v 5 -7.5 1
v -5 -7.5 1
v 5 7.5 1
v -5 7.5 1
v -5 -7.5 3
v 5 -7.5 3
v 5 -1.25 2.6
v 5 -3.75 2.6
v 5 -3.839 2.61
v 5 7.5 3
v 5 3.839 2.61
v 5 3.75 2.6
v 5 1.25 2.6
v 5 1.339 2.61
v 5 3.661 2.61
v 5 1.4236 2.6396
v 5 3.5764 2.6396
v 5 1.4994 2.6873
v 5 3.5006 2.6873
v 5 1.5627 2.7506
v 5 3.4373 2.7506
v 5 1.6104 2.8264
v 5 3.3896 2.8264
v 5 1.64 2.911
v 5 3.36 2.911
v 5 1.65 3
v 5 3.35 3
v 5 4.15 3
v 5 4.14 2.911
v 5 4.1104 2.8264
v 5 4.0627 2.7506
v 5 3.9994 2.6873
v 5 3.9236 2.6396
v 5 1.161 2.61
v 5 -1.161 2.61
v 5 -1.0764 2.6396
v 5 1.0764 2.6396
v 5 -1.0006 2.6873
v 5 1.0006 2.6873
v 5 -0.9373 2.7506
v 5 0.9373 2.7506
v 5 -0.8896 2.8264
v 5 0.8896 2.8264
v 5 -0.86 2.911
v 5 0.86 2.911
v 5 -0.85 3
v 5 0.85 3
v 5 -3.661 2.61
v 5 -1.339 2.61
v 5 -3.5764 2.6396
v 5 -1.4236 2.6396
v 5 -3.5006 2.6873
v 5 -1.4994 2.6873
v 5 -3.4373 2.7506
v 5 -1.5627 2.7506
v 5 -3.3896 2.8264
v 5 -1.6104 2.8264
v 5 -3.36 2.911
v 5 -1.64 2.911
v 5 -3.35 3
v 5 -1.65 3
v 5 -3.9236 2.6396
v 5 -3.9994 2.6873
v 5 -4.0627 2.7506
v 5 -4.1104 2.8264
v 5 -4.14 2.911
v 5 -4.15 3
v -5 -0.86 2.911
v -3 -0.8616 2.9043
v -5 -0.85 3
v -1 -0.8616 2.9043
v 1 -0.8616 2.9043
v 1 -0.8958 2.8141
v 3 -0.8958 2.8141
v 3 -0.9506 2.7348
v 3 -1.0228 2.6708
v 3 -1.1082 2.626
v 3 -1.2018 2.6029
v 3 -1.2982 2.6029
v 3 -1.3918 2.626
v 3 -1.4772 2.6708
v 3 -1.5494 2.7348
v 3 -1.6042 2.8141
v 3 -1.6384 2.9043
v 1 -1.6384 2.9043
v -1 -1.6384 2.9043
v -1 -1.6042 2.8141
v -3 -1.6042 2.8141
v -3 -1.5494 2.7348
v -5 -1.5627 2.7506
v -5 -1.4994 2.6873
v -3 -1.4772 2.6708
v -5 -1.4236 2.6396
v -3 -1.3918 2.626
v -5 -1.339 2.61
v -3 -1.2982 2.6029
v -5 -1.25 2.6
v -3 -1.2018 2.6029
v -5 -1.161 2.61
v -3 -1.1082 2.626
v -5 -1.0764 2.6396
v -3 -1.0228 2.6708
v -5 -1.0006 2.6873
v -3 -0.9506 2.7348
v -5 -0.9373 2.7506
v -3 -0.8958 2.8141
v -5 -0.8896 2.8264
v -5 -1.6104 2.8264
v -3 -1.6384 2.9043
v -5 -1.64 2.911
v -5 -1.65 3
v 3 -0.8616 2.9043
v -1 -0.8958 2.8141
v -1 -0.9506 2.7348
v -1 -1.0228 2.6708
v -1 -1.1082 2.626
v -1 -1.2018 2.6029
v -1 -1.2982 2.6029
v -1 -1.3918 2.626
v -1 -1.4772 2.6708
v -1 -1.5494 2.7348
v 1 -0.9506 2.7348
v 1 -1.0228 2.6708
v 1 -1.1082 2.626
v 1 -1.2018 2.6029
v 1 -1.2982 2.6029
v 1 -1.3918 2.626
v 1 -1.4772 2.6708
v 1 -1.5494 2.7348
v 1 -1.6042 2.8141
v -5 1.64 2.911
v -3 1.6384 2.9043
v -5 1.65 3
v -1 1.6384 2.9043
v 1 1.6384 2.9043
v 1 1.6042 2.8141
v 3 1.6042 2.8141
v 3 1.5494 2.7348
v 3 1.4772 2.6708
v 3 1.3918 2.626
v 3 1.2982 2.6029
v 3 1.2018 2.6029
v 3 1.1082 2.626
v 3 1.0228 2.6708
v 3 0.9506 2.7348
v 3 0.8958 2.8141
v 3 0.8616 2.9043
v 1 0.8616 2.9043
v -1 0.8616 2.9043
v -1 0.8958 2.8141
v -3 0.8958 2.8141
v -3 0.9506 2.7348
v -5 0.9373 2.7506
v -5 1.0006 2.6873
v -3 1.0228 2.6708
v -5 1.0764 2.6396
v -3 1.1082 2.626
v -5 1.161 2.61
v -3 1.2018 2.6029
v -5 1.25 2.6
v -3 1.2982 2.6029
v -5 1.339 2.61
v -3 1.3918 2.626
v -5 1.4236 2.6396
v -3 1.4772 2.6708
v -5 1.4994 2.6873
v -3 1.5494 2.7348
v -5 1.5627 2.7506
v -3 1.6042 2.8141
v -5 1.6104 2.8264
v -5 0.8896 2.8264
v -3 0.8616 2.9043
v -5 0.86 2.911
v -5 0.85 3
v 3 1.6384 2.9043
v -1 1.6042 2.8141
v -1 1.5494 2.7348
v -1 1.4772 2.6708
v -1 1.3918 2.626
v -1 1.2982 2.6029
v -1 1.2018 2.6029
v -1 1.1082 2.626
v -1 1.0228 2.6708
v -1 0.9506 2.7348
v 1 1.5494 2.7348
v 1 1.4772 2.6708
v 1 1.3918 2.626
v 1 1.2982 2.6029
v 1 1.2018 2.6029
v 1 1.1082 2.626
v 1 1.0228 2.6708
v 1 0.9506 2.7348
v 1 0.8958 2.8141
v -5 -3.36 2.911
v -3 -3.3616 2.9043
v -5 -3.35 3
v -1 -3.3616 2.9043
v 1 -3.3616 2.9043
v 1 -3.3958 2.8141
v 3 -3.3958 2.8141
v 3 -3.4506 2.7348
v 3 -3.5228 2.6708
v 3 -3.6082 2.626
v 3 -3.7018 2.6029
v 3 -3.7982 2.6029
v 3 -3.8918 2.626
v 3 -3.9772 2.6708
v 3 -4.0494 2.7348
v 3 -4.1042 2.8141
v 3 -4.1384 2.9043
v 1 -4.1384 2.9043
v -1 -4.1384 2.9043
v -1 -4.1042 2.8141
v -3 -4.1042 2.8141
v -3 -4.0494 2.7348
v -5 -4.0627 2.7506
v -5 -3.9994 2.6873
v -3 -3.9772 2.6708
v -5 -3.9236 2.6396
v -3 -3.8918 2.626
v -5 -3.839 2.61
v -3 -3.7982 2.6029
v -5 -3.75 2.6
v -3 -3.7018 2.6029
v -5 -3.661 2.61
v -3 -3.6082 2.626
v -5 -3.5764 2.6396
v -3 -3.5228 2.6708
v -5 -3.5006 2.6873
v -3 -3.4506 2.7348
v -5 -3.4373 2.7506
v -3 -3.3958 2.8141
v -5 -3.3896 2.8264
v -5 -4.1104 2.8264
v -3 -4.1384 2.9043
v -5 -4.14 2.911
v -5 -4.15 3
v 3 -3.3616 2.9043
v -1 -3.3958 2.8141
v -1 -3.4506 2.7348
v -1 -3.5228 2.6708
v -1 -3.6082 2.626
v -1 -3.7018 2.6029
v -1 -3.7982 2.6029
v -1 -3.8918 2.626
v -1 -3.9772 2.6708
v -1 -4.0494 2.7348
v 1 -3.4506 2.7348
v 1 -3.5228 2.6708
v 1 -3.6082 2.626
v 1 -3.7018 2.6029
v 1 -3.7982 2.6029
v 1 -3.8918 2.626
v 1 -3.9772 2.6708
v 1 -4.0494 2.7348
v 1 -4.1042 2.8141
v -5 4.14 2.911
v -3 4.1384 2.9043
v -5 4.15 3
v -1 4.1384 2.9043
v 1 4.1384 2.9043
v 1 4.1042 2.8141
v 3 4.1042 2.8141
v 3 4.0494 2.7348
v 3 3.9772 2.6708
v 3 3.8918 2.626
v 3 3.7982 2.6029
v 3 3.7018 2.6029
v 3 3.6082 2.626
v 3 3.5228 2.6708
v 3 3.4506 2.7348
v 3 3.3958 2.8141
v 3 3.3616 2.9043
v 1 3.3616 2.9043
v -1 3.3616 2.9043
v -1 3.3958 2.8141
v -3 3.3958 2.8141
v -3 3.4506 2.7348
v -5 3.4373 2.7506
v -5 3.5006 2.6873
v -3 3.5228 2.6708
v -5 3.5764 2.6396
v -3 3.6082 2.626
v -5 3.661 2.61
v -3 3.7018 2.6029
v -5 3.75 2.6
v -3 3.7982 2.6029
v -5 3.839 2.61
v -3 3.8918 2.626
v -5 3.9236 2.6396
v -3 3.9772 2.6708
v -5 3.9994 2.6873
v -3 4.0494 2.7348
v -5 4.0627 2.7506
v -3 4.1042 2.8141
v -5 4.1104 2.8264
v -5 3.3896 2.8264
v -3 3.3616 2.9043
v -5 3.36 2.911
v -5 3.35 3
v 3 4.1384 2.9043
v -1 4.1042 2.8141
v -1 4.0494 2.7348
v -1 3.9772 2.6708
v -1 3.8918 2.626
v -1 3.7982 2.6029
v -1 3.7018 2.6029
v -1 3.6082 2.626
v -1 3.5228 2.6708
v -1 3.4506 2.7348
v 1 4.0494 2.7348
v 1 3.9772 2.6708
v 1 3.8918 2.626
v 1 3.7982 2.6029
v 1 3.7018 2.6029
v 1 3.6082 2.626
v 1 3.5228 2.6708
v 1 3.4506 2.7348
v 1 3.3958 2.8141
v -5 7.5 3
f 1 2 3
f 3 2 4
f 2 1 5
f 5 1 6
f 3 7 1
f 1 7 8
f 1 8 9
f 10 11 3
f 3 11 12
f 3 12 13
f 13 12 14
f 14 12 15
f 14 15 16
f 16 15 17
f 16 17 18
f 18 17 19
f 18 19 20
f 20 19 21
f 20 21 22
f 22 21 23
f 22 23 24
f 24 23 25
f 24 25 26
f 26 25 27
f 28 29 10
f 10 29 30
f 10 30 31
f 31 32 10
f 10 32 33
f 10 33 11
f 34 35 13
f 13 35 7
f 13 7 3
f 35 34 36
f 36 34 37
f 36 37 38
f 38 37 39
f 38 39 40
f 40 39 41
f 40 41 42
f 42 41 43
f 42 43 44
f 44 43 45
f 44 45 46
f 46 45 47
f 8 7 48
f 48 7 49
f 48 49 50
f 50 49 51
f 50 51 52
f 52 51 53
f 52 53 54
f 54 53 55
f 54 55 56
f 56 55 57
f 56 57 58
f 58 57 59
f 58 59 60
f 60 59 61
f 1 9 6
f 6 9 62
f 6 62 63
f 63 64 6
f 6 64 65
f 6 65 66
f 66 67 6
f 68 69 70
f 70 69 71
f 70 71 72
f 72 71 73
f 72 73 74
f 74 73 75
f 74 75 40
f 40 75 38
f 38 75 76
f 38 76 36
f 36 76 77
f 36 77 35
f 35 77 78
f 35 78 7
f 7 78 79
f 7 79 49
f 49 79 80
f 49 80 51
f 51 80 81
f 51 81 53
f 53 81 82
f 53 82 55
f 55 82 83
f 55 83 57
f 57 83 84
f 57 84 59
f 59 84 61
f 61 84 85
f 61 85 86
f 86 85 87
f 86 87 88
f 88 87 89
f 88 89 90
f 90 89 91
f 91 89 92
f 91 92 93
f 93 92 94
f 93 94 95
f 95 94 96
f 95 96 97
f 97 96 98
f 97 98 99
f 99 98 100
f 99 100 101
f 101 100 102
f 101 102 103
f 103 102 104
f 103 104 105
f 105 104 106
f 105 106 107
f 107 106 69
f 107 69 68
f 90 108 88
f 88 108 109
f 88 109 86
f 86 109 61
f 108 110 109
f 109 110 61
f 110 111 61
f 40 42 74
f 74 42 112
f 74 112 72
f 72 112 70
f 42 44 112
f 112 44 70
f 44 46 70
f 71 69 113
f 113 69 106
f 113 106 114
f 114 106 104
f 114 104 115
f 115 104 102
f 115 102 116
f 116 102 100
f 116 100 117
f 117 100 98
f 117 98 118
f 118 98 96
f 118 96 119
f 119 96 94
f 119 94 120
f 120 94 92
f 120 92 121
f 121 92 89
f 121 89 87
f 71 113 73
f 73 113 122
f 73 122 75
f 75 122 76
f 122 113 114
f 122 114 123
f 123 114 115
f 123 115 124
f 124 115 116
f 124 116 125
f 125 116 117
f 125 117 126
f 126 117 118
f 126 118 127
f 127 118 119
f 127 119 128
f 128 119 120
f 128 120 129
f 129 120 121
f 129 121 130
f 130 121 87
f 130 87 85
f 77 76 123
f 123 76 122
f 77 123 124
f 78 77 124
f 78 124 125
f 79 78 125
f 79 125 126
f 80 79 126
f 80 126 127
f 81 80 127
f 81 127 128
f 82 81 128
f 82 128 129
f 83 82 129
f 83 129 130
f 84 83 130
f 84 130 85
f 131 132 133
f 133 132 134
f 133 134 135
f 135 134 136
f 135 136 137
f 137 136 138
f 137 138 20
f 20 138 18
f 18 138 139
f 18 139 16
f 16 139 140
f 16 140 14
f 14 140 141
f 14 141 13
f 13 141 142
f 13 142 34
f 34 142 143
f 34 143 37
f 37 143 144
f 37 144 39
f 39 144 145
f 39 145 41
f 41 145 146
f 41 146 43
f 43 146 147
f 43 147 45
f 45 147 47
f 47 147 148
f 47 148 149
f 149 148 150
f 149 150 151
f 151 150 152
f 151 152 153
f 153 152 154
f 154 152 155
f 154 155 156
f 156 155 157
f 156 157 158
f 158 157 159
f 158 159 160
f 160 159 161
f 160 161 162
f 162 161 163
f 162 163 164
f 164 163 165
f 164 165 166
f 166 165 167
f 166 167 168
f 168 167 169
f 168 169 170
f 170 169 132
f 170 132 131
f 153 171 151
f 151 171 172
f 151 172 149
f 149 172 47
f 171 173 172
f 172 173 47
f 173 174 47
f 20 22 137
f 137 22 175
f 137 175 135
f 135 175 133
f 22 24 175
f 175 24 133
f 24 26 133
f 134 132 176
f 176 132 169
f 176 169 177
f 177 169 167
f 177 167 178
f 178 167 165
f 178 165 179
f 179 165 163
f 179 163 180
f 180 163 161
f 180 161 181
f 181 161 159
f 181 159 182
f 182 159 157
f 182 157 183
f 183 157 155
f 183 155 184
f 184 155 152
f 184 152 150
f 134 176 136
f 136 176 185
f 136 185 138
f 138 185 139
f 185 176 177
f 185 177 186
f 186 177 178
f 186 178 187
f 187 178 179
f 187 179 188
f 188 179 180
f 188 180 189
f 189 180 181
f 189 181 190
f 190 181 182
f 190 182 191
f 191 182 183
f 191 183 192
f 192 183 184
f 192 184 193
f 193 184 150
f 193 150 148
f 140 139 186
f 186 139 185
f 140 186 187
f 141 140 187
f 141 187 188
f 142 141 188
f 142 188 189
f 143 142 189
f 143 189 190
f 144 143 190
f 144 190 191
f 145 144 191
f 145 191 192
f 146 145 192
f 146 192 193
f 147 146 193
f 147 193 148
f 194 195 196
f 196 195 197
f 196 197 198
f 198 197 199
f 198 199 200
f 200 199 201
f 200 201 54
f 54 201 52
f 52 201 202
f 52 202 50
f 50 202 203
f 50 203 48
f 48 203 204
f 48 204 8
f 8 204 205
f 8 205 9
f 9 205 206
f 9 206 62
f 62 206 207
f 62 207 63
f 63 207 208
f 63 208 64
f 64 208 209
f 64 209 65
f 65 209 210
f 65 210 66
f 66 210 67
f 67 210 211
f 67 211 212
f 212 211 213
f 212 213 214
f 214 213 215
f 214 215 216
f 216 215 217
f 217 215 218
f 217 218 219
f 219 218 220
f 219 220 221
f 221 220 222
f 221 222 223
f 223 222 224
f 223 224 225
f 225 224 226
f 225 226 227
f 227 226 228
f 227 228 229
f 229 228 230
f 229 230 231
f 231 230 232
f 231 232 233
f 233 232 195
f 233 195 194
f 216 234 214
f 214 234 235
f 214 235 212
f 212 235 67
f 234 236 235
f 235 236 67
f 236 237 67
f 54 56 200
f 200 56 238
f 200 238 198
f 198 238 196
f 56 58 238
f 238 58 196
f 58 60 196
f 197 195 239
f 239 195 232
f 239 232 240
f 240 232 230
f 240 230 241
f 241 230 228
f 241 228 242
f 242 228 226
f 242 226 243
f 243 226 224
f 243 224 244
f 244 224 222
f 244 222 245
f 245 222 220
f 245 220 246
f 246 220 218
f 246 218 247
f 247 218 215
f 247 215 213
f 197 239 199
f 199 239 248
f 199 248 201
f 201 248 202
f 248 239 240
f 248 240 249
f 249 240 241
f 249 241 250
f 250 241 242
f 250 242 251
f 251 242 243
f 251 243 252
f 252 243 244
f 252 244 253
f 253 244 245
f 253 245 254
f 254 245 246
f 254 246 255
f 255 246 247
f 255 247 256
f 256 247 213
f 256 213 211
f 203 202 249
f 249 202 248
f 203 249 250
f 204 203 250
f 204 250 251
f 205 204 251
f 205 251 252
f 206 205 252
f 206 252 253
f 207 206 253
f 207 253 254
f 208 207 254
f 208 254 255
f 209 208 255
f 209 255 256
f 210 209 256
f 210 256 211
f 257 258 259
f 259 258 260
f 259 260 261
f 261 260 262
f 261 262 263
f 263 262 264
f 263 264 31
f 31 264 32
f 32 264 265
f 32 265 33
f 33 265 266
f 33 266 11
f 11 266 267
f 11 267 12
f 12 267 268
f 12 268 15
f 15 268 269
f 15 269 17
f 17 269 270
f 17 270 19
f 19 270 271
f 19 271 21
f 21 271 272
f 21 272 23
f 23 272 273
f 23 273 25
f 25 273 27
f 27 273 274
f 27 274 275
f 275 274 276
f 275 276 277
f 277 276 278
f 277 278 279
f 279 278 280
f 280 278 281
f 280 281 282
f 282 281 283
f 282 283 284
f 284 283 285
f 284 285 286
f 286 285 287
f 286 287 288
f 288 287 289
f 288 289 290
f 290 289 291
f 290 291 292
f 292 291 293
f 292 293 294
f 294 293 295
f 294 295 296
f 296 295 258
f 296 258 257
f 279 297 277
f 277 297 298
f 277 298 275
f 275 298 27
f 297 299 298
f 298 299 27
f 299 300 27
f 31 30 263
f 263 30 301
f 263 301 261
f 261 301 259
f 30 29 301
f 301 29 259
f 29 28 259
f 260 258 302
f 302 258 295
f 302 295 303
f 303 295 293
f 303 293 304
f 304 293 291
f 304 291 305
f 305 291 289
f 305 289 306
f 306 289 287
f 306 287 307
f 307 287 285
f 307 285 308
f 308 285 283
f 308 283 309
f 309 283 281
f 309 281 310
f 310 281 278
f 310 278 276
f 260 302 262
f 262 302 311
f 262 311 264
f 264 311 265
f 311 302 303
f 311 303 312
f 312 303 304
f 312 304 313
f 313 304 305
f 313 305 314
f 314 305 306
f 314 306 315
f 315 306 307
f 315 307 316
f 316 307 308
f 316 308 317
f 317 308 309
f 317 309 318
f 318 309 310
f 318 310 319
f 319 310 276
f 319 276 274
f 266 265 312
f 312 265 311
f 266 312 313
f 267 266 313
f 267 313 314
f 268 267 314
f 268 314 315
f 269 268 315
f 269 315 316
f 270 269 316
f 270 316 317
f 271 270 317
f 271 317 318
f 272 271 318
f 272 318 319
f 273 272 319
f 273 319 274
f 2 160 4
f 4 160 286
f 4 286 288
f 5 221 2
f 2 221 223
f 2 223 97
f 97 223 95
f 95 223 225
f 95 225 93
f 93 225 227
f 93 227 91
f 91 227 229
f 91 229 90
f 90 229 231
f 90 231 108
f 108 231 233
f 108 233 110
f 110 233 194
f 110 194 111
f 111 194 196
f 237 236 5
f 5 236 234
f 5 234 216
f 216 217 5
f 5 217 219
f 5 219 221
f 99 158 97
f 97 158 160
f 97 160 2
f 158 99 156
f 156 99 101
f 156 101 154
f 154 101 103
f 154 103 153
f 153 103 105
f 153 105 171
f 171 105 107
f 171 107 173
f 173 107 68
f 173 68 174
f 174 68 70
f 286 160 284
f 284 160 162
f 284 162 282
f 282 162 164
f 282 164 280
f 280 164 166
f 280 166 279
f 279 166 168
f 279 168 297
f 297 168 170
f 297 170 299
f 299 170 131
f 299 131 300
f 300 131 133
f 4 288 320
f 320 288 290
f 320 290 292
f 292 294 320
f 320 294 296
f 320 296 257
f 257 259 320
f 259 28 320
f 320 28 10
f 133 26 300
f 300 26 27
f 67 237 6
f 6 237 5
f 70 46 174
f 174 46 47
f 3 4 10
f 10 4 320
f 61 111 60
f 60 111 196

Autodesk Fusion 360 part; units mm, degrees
sketch "Sketch1" plane through (0, 0, 0) normal (0, 0, 1) x (1, 0, 0)
  line L0 (5, 7.5) -> (-5, 7.5)
  line L1 (-5, 7.5) -> (-5, -7.5)
  line L2 (-5, -7.5) -> (5, -7.5)
  line L3 (5, -7.5) -> (5, 7.5)
  line L4 (5, 7.5) -> (-5, -7.5) construction
  line L5 (-5, 7.5) -> (5, -7.5) construction
  dimension "d1" = 10
  dimension "d2" = 15
extrude "Extrude1" add sketch "Sketch1" along normal blind 3
sketch "Sketch2" plane through (5, 0, 0) normal (1, 0, 0) x (0, 1, 0)
  line L0 (-7.5, 0) -> (7.5, 0)
  line L1 (7.5, 0) -> (7.5, 3)
  line L2 (7.5, 3) -> (-7.5, 3)
  line L3 (-7.5, 3) -> (-7.5, 0)
  line L4 (0, 3) -> (5, 3) construction
  line L5 (5, 3) -> (3.75, 3) construction
  circle A0 centre (3.75, 3) radius 0.4
  line L6 (3.75, 3) -> (1.25, 3) construction
  circle A1 centre (1.25, 3) radius 0.4
  line L7 (0, 3) -> (0, 3.8715) construction
  circle A2 centre (-3.75, 3) radius 0.4
  circle A3 centre (-1.25, 3) radius 0.4
  dimension "d5" = 5
  dimension "d6" = 1.25
  dimension "d7" = 0.8
  dimension "d8" = 2.5
  dimension "d9" = 0.8
extrude "Extrude2" cut sketch "Sketch2" against normal blind 15 contours L2 A2 | L2 A0 | L2 A3 | L2 A1 picked at (-3.8463, 2.8894) picked at (3.8833, 2.7915) picked at (-1.1781, 2.8008) picked at (1.1833, 2.8845)
extrude "Extrude3" cut 1 faces at (-1.6667, 2.5, 0) along direction (0, 0, 1) blind 1
